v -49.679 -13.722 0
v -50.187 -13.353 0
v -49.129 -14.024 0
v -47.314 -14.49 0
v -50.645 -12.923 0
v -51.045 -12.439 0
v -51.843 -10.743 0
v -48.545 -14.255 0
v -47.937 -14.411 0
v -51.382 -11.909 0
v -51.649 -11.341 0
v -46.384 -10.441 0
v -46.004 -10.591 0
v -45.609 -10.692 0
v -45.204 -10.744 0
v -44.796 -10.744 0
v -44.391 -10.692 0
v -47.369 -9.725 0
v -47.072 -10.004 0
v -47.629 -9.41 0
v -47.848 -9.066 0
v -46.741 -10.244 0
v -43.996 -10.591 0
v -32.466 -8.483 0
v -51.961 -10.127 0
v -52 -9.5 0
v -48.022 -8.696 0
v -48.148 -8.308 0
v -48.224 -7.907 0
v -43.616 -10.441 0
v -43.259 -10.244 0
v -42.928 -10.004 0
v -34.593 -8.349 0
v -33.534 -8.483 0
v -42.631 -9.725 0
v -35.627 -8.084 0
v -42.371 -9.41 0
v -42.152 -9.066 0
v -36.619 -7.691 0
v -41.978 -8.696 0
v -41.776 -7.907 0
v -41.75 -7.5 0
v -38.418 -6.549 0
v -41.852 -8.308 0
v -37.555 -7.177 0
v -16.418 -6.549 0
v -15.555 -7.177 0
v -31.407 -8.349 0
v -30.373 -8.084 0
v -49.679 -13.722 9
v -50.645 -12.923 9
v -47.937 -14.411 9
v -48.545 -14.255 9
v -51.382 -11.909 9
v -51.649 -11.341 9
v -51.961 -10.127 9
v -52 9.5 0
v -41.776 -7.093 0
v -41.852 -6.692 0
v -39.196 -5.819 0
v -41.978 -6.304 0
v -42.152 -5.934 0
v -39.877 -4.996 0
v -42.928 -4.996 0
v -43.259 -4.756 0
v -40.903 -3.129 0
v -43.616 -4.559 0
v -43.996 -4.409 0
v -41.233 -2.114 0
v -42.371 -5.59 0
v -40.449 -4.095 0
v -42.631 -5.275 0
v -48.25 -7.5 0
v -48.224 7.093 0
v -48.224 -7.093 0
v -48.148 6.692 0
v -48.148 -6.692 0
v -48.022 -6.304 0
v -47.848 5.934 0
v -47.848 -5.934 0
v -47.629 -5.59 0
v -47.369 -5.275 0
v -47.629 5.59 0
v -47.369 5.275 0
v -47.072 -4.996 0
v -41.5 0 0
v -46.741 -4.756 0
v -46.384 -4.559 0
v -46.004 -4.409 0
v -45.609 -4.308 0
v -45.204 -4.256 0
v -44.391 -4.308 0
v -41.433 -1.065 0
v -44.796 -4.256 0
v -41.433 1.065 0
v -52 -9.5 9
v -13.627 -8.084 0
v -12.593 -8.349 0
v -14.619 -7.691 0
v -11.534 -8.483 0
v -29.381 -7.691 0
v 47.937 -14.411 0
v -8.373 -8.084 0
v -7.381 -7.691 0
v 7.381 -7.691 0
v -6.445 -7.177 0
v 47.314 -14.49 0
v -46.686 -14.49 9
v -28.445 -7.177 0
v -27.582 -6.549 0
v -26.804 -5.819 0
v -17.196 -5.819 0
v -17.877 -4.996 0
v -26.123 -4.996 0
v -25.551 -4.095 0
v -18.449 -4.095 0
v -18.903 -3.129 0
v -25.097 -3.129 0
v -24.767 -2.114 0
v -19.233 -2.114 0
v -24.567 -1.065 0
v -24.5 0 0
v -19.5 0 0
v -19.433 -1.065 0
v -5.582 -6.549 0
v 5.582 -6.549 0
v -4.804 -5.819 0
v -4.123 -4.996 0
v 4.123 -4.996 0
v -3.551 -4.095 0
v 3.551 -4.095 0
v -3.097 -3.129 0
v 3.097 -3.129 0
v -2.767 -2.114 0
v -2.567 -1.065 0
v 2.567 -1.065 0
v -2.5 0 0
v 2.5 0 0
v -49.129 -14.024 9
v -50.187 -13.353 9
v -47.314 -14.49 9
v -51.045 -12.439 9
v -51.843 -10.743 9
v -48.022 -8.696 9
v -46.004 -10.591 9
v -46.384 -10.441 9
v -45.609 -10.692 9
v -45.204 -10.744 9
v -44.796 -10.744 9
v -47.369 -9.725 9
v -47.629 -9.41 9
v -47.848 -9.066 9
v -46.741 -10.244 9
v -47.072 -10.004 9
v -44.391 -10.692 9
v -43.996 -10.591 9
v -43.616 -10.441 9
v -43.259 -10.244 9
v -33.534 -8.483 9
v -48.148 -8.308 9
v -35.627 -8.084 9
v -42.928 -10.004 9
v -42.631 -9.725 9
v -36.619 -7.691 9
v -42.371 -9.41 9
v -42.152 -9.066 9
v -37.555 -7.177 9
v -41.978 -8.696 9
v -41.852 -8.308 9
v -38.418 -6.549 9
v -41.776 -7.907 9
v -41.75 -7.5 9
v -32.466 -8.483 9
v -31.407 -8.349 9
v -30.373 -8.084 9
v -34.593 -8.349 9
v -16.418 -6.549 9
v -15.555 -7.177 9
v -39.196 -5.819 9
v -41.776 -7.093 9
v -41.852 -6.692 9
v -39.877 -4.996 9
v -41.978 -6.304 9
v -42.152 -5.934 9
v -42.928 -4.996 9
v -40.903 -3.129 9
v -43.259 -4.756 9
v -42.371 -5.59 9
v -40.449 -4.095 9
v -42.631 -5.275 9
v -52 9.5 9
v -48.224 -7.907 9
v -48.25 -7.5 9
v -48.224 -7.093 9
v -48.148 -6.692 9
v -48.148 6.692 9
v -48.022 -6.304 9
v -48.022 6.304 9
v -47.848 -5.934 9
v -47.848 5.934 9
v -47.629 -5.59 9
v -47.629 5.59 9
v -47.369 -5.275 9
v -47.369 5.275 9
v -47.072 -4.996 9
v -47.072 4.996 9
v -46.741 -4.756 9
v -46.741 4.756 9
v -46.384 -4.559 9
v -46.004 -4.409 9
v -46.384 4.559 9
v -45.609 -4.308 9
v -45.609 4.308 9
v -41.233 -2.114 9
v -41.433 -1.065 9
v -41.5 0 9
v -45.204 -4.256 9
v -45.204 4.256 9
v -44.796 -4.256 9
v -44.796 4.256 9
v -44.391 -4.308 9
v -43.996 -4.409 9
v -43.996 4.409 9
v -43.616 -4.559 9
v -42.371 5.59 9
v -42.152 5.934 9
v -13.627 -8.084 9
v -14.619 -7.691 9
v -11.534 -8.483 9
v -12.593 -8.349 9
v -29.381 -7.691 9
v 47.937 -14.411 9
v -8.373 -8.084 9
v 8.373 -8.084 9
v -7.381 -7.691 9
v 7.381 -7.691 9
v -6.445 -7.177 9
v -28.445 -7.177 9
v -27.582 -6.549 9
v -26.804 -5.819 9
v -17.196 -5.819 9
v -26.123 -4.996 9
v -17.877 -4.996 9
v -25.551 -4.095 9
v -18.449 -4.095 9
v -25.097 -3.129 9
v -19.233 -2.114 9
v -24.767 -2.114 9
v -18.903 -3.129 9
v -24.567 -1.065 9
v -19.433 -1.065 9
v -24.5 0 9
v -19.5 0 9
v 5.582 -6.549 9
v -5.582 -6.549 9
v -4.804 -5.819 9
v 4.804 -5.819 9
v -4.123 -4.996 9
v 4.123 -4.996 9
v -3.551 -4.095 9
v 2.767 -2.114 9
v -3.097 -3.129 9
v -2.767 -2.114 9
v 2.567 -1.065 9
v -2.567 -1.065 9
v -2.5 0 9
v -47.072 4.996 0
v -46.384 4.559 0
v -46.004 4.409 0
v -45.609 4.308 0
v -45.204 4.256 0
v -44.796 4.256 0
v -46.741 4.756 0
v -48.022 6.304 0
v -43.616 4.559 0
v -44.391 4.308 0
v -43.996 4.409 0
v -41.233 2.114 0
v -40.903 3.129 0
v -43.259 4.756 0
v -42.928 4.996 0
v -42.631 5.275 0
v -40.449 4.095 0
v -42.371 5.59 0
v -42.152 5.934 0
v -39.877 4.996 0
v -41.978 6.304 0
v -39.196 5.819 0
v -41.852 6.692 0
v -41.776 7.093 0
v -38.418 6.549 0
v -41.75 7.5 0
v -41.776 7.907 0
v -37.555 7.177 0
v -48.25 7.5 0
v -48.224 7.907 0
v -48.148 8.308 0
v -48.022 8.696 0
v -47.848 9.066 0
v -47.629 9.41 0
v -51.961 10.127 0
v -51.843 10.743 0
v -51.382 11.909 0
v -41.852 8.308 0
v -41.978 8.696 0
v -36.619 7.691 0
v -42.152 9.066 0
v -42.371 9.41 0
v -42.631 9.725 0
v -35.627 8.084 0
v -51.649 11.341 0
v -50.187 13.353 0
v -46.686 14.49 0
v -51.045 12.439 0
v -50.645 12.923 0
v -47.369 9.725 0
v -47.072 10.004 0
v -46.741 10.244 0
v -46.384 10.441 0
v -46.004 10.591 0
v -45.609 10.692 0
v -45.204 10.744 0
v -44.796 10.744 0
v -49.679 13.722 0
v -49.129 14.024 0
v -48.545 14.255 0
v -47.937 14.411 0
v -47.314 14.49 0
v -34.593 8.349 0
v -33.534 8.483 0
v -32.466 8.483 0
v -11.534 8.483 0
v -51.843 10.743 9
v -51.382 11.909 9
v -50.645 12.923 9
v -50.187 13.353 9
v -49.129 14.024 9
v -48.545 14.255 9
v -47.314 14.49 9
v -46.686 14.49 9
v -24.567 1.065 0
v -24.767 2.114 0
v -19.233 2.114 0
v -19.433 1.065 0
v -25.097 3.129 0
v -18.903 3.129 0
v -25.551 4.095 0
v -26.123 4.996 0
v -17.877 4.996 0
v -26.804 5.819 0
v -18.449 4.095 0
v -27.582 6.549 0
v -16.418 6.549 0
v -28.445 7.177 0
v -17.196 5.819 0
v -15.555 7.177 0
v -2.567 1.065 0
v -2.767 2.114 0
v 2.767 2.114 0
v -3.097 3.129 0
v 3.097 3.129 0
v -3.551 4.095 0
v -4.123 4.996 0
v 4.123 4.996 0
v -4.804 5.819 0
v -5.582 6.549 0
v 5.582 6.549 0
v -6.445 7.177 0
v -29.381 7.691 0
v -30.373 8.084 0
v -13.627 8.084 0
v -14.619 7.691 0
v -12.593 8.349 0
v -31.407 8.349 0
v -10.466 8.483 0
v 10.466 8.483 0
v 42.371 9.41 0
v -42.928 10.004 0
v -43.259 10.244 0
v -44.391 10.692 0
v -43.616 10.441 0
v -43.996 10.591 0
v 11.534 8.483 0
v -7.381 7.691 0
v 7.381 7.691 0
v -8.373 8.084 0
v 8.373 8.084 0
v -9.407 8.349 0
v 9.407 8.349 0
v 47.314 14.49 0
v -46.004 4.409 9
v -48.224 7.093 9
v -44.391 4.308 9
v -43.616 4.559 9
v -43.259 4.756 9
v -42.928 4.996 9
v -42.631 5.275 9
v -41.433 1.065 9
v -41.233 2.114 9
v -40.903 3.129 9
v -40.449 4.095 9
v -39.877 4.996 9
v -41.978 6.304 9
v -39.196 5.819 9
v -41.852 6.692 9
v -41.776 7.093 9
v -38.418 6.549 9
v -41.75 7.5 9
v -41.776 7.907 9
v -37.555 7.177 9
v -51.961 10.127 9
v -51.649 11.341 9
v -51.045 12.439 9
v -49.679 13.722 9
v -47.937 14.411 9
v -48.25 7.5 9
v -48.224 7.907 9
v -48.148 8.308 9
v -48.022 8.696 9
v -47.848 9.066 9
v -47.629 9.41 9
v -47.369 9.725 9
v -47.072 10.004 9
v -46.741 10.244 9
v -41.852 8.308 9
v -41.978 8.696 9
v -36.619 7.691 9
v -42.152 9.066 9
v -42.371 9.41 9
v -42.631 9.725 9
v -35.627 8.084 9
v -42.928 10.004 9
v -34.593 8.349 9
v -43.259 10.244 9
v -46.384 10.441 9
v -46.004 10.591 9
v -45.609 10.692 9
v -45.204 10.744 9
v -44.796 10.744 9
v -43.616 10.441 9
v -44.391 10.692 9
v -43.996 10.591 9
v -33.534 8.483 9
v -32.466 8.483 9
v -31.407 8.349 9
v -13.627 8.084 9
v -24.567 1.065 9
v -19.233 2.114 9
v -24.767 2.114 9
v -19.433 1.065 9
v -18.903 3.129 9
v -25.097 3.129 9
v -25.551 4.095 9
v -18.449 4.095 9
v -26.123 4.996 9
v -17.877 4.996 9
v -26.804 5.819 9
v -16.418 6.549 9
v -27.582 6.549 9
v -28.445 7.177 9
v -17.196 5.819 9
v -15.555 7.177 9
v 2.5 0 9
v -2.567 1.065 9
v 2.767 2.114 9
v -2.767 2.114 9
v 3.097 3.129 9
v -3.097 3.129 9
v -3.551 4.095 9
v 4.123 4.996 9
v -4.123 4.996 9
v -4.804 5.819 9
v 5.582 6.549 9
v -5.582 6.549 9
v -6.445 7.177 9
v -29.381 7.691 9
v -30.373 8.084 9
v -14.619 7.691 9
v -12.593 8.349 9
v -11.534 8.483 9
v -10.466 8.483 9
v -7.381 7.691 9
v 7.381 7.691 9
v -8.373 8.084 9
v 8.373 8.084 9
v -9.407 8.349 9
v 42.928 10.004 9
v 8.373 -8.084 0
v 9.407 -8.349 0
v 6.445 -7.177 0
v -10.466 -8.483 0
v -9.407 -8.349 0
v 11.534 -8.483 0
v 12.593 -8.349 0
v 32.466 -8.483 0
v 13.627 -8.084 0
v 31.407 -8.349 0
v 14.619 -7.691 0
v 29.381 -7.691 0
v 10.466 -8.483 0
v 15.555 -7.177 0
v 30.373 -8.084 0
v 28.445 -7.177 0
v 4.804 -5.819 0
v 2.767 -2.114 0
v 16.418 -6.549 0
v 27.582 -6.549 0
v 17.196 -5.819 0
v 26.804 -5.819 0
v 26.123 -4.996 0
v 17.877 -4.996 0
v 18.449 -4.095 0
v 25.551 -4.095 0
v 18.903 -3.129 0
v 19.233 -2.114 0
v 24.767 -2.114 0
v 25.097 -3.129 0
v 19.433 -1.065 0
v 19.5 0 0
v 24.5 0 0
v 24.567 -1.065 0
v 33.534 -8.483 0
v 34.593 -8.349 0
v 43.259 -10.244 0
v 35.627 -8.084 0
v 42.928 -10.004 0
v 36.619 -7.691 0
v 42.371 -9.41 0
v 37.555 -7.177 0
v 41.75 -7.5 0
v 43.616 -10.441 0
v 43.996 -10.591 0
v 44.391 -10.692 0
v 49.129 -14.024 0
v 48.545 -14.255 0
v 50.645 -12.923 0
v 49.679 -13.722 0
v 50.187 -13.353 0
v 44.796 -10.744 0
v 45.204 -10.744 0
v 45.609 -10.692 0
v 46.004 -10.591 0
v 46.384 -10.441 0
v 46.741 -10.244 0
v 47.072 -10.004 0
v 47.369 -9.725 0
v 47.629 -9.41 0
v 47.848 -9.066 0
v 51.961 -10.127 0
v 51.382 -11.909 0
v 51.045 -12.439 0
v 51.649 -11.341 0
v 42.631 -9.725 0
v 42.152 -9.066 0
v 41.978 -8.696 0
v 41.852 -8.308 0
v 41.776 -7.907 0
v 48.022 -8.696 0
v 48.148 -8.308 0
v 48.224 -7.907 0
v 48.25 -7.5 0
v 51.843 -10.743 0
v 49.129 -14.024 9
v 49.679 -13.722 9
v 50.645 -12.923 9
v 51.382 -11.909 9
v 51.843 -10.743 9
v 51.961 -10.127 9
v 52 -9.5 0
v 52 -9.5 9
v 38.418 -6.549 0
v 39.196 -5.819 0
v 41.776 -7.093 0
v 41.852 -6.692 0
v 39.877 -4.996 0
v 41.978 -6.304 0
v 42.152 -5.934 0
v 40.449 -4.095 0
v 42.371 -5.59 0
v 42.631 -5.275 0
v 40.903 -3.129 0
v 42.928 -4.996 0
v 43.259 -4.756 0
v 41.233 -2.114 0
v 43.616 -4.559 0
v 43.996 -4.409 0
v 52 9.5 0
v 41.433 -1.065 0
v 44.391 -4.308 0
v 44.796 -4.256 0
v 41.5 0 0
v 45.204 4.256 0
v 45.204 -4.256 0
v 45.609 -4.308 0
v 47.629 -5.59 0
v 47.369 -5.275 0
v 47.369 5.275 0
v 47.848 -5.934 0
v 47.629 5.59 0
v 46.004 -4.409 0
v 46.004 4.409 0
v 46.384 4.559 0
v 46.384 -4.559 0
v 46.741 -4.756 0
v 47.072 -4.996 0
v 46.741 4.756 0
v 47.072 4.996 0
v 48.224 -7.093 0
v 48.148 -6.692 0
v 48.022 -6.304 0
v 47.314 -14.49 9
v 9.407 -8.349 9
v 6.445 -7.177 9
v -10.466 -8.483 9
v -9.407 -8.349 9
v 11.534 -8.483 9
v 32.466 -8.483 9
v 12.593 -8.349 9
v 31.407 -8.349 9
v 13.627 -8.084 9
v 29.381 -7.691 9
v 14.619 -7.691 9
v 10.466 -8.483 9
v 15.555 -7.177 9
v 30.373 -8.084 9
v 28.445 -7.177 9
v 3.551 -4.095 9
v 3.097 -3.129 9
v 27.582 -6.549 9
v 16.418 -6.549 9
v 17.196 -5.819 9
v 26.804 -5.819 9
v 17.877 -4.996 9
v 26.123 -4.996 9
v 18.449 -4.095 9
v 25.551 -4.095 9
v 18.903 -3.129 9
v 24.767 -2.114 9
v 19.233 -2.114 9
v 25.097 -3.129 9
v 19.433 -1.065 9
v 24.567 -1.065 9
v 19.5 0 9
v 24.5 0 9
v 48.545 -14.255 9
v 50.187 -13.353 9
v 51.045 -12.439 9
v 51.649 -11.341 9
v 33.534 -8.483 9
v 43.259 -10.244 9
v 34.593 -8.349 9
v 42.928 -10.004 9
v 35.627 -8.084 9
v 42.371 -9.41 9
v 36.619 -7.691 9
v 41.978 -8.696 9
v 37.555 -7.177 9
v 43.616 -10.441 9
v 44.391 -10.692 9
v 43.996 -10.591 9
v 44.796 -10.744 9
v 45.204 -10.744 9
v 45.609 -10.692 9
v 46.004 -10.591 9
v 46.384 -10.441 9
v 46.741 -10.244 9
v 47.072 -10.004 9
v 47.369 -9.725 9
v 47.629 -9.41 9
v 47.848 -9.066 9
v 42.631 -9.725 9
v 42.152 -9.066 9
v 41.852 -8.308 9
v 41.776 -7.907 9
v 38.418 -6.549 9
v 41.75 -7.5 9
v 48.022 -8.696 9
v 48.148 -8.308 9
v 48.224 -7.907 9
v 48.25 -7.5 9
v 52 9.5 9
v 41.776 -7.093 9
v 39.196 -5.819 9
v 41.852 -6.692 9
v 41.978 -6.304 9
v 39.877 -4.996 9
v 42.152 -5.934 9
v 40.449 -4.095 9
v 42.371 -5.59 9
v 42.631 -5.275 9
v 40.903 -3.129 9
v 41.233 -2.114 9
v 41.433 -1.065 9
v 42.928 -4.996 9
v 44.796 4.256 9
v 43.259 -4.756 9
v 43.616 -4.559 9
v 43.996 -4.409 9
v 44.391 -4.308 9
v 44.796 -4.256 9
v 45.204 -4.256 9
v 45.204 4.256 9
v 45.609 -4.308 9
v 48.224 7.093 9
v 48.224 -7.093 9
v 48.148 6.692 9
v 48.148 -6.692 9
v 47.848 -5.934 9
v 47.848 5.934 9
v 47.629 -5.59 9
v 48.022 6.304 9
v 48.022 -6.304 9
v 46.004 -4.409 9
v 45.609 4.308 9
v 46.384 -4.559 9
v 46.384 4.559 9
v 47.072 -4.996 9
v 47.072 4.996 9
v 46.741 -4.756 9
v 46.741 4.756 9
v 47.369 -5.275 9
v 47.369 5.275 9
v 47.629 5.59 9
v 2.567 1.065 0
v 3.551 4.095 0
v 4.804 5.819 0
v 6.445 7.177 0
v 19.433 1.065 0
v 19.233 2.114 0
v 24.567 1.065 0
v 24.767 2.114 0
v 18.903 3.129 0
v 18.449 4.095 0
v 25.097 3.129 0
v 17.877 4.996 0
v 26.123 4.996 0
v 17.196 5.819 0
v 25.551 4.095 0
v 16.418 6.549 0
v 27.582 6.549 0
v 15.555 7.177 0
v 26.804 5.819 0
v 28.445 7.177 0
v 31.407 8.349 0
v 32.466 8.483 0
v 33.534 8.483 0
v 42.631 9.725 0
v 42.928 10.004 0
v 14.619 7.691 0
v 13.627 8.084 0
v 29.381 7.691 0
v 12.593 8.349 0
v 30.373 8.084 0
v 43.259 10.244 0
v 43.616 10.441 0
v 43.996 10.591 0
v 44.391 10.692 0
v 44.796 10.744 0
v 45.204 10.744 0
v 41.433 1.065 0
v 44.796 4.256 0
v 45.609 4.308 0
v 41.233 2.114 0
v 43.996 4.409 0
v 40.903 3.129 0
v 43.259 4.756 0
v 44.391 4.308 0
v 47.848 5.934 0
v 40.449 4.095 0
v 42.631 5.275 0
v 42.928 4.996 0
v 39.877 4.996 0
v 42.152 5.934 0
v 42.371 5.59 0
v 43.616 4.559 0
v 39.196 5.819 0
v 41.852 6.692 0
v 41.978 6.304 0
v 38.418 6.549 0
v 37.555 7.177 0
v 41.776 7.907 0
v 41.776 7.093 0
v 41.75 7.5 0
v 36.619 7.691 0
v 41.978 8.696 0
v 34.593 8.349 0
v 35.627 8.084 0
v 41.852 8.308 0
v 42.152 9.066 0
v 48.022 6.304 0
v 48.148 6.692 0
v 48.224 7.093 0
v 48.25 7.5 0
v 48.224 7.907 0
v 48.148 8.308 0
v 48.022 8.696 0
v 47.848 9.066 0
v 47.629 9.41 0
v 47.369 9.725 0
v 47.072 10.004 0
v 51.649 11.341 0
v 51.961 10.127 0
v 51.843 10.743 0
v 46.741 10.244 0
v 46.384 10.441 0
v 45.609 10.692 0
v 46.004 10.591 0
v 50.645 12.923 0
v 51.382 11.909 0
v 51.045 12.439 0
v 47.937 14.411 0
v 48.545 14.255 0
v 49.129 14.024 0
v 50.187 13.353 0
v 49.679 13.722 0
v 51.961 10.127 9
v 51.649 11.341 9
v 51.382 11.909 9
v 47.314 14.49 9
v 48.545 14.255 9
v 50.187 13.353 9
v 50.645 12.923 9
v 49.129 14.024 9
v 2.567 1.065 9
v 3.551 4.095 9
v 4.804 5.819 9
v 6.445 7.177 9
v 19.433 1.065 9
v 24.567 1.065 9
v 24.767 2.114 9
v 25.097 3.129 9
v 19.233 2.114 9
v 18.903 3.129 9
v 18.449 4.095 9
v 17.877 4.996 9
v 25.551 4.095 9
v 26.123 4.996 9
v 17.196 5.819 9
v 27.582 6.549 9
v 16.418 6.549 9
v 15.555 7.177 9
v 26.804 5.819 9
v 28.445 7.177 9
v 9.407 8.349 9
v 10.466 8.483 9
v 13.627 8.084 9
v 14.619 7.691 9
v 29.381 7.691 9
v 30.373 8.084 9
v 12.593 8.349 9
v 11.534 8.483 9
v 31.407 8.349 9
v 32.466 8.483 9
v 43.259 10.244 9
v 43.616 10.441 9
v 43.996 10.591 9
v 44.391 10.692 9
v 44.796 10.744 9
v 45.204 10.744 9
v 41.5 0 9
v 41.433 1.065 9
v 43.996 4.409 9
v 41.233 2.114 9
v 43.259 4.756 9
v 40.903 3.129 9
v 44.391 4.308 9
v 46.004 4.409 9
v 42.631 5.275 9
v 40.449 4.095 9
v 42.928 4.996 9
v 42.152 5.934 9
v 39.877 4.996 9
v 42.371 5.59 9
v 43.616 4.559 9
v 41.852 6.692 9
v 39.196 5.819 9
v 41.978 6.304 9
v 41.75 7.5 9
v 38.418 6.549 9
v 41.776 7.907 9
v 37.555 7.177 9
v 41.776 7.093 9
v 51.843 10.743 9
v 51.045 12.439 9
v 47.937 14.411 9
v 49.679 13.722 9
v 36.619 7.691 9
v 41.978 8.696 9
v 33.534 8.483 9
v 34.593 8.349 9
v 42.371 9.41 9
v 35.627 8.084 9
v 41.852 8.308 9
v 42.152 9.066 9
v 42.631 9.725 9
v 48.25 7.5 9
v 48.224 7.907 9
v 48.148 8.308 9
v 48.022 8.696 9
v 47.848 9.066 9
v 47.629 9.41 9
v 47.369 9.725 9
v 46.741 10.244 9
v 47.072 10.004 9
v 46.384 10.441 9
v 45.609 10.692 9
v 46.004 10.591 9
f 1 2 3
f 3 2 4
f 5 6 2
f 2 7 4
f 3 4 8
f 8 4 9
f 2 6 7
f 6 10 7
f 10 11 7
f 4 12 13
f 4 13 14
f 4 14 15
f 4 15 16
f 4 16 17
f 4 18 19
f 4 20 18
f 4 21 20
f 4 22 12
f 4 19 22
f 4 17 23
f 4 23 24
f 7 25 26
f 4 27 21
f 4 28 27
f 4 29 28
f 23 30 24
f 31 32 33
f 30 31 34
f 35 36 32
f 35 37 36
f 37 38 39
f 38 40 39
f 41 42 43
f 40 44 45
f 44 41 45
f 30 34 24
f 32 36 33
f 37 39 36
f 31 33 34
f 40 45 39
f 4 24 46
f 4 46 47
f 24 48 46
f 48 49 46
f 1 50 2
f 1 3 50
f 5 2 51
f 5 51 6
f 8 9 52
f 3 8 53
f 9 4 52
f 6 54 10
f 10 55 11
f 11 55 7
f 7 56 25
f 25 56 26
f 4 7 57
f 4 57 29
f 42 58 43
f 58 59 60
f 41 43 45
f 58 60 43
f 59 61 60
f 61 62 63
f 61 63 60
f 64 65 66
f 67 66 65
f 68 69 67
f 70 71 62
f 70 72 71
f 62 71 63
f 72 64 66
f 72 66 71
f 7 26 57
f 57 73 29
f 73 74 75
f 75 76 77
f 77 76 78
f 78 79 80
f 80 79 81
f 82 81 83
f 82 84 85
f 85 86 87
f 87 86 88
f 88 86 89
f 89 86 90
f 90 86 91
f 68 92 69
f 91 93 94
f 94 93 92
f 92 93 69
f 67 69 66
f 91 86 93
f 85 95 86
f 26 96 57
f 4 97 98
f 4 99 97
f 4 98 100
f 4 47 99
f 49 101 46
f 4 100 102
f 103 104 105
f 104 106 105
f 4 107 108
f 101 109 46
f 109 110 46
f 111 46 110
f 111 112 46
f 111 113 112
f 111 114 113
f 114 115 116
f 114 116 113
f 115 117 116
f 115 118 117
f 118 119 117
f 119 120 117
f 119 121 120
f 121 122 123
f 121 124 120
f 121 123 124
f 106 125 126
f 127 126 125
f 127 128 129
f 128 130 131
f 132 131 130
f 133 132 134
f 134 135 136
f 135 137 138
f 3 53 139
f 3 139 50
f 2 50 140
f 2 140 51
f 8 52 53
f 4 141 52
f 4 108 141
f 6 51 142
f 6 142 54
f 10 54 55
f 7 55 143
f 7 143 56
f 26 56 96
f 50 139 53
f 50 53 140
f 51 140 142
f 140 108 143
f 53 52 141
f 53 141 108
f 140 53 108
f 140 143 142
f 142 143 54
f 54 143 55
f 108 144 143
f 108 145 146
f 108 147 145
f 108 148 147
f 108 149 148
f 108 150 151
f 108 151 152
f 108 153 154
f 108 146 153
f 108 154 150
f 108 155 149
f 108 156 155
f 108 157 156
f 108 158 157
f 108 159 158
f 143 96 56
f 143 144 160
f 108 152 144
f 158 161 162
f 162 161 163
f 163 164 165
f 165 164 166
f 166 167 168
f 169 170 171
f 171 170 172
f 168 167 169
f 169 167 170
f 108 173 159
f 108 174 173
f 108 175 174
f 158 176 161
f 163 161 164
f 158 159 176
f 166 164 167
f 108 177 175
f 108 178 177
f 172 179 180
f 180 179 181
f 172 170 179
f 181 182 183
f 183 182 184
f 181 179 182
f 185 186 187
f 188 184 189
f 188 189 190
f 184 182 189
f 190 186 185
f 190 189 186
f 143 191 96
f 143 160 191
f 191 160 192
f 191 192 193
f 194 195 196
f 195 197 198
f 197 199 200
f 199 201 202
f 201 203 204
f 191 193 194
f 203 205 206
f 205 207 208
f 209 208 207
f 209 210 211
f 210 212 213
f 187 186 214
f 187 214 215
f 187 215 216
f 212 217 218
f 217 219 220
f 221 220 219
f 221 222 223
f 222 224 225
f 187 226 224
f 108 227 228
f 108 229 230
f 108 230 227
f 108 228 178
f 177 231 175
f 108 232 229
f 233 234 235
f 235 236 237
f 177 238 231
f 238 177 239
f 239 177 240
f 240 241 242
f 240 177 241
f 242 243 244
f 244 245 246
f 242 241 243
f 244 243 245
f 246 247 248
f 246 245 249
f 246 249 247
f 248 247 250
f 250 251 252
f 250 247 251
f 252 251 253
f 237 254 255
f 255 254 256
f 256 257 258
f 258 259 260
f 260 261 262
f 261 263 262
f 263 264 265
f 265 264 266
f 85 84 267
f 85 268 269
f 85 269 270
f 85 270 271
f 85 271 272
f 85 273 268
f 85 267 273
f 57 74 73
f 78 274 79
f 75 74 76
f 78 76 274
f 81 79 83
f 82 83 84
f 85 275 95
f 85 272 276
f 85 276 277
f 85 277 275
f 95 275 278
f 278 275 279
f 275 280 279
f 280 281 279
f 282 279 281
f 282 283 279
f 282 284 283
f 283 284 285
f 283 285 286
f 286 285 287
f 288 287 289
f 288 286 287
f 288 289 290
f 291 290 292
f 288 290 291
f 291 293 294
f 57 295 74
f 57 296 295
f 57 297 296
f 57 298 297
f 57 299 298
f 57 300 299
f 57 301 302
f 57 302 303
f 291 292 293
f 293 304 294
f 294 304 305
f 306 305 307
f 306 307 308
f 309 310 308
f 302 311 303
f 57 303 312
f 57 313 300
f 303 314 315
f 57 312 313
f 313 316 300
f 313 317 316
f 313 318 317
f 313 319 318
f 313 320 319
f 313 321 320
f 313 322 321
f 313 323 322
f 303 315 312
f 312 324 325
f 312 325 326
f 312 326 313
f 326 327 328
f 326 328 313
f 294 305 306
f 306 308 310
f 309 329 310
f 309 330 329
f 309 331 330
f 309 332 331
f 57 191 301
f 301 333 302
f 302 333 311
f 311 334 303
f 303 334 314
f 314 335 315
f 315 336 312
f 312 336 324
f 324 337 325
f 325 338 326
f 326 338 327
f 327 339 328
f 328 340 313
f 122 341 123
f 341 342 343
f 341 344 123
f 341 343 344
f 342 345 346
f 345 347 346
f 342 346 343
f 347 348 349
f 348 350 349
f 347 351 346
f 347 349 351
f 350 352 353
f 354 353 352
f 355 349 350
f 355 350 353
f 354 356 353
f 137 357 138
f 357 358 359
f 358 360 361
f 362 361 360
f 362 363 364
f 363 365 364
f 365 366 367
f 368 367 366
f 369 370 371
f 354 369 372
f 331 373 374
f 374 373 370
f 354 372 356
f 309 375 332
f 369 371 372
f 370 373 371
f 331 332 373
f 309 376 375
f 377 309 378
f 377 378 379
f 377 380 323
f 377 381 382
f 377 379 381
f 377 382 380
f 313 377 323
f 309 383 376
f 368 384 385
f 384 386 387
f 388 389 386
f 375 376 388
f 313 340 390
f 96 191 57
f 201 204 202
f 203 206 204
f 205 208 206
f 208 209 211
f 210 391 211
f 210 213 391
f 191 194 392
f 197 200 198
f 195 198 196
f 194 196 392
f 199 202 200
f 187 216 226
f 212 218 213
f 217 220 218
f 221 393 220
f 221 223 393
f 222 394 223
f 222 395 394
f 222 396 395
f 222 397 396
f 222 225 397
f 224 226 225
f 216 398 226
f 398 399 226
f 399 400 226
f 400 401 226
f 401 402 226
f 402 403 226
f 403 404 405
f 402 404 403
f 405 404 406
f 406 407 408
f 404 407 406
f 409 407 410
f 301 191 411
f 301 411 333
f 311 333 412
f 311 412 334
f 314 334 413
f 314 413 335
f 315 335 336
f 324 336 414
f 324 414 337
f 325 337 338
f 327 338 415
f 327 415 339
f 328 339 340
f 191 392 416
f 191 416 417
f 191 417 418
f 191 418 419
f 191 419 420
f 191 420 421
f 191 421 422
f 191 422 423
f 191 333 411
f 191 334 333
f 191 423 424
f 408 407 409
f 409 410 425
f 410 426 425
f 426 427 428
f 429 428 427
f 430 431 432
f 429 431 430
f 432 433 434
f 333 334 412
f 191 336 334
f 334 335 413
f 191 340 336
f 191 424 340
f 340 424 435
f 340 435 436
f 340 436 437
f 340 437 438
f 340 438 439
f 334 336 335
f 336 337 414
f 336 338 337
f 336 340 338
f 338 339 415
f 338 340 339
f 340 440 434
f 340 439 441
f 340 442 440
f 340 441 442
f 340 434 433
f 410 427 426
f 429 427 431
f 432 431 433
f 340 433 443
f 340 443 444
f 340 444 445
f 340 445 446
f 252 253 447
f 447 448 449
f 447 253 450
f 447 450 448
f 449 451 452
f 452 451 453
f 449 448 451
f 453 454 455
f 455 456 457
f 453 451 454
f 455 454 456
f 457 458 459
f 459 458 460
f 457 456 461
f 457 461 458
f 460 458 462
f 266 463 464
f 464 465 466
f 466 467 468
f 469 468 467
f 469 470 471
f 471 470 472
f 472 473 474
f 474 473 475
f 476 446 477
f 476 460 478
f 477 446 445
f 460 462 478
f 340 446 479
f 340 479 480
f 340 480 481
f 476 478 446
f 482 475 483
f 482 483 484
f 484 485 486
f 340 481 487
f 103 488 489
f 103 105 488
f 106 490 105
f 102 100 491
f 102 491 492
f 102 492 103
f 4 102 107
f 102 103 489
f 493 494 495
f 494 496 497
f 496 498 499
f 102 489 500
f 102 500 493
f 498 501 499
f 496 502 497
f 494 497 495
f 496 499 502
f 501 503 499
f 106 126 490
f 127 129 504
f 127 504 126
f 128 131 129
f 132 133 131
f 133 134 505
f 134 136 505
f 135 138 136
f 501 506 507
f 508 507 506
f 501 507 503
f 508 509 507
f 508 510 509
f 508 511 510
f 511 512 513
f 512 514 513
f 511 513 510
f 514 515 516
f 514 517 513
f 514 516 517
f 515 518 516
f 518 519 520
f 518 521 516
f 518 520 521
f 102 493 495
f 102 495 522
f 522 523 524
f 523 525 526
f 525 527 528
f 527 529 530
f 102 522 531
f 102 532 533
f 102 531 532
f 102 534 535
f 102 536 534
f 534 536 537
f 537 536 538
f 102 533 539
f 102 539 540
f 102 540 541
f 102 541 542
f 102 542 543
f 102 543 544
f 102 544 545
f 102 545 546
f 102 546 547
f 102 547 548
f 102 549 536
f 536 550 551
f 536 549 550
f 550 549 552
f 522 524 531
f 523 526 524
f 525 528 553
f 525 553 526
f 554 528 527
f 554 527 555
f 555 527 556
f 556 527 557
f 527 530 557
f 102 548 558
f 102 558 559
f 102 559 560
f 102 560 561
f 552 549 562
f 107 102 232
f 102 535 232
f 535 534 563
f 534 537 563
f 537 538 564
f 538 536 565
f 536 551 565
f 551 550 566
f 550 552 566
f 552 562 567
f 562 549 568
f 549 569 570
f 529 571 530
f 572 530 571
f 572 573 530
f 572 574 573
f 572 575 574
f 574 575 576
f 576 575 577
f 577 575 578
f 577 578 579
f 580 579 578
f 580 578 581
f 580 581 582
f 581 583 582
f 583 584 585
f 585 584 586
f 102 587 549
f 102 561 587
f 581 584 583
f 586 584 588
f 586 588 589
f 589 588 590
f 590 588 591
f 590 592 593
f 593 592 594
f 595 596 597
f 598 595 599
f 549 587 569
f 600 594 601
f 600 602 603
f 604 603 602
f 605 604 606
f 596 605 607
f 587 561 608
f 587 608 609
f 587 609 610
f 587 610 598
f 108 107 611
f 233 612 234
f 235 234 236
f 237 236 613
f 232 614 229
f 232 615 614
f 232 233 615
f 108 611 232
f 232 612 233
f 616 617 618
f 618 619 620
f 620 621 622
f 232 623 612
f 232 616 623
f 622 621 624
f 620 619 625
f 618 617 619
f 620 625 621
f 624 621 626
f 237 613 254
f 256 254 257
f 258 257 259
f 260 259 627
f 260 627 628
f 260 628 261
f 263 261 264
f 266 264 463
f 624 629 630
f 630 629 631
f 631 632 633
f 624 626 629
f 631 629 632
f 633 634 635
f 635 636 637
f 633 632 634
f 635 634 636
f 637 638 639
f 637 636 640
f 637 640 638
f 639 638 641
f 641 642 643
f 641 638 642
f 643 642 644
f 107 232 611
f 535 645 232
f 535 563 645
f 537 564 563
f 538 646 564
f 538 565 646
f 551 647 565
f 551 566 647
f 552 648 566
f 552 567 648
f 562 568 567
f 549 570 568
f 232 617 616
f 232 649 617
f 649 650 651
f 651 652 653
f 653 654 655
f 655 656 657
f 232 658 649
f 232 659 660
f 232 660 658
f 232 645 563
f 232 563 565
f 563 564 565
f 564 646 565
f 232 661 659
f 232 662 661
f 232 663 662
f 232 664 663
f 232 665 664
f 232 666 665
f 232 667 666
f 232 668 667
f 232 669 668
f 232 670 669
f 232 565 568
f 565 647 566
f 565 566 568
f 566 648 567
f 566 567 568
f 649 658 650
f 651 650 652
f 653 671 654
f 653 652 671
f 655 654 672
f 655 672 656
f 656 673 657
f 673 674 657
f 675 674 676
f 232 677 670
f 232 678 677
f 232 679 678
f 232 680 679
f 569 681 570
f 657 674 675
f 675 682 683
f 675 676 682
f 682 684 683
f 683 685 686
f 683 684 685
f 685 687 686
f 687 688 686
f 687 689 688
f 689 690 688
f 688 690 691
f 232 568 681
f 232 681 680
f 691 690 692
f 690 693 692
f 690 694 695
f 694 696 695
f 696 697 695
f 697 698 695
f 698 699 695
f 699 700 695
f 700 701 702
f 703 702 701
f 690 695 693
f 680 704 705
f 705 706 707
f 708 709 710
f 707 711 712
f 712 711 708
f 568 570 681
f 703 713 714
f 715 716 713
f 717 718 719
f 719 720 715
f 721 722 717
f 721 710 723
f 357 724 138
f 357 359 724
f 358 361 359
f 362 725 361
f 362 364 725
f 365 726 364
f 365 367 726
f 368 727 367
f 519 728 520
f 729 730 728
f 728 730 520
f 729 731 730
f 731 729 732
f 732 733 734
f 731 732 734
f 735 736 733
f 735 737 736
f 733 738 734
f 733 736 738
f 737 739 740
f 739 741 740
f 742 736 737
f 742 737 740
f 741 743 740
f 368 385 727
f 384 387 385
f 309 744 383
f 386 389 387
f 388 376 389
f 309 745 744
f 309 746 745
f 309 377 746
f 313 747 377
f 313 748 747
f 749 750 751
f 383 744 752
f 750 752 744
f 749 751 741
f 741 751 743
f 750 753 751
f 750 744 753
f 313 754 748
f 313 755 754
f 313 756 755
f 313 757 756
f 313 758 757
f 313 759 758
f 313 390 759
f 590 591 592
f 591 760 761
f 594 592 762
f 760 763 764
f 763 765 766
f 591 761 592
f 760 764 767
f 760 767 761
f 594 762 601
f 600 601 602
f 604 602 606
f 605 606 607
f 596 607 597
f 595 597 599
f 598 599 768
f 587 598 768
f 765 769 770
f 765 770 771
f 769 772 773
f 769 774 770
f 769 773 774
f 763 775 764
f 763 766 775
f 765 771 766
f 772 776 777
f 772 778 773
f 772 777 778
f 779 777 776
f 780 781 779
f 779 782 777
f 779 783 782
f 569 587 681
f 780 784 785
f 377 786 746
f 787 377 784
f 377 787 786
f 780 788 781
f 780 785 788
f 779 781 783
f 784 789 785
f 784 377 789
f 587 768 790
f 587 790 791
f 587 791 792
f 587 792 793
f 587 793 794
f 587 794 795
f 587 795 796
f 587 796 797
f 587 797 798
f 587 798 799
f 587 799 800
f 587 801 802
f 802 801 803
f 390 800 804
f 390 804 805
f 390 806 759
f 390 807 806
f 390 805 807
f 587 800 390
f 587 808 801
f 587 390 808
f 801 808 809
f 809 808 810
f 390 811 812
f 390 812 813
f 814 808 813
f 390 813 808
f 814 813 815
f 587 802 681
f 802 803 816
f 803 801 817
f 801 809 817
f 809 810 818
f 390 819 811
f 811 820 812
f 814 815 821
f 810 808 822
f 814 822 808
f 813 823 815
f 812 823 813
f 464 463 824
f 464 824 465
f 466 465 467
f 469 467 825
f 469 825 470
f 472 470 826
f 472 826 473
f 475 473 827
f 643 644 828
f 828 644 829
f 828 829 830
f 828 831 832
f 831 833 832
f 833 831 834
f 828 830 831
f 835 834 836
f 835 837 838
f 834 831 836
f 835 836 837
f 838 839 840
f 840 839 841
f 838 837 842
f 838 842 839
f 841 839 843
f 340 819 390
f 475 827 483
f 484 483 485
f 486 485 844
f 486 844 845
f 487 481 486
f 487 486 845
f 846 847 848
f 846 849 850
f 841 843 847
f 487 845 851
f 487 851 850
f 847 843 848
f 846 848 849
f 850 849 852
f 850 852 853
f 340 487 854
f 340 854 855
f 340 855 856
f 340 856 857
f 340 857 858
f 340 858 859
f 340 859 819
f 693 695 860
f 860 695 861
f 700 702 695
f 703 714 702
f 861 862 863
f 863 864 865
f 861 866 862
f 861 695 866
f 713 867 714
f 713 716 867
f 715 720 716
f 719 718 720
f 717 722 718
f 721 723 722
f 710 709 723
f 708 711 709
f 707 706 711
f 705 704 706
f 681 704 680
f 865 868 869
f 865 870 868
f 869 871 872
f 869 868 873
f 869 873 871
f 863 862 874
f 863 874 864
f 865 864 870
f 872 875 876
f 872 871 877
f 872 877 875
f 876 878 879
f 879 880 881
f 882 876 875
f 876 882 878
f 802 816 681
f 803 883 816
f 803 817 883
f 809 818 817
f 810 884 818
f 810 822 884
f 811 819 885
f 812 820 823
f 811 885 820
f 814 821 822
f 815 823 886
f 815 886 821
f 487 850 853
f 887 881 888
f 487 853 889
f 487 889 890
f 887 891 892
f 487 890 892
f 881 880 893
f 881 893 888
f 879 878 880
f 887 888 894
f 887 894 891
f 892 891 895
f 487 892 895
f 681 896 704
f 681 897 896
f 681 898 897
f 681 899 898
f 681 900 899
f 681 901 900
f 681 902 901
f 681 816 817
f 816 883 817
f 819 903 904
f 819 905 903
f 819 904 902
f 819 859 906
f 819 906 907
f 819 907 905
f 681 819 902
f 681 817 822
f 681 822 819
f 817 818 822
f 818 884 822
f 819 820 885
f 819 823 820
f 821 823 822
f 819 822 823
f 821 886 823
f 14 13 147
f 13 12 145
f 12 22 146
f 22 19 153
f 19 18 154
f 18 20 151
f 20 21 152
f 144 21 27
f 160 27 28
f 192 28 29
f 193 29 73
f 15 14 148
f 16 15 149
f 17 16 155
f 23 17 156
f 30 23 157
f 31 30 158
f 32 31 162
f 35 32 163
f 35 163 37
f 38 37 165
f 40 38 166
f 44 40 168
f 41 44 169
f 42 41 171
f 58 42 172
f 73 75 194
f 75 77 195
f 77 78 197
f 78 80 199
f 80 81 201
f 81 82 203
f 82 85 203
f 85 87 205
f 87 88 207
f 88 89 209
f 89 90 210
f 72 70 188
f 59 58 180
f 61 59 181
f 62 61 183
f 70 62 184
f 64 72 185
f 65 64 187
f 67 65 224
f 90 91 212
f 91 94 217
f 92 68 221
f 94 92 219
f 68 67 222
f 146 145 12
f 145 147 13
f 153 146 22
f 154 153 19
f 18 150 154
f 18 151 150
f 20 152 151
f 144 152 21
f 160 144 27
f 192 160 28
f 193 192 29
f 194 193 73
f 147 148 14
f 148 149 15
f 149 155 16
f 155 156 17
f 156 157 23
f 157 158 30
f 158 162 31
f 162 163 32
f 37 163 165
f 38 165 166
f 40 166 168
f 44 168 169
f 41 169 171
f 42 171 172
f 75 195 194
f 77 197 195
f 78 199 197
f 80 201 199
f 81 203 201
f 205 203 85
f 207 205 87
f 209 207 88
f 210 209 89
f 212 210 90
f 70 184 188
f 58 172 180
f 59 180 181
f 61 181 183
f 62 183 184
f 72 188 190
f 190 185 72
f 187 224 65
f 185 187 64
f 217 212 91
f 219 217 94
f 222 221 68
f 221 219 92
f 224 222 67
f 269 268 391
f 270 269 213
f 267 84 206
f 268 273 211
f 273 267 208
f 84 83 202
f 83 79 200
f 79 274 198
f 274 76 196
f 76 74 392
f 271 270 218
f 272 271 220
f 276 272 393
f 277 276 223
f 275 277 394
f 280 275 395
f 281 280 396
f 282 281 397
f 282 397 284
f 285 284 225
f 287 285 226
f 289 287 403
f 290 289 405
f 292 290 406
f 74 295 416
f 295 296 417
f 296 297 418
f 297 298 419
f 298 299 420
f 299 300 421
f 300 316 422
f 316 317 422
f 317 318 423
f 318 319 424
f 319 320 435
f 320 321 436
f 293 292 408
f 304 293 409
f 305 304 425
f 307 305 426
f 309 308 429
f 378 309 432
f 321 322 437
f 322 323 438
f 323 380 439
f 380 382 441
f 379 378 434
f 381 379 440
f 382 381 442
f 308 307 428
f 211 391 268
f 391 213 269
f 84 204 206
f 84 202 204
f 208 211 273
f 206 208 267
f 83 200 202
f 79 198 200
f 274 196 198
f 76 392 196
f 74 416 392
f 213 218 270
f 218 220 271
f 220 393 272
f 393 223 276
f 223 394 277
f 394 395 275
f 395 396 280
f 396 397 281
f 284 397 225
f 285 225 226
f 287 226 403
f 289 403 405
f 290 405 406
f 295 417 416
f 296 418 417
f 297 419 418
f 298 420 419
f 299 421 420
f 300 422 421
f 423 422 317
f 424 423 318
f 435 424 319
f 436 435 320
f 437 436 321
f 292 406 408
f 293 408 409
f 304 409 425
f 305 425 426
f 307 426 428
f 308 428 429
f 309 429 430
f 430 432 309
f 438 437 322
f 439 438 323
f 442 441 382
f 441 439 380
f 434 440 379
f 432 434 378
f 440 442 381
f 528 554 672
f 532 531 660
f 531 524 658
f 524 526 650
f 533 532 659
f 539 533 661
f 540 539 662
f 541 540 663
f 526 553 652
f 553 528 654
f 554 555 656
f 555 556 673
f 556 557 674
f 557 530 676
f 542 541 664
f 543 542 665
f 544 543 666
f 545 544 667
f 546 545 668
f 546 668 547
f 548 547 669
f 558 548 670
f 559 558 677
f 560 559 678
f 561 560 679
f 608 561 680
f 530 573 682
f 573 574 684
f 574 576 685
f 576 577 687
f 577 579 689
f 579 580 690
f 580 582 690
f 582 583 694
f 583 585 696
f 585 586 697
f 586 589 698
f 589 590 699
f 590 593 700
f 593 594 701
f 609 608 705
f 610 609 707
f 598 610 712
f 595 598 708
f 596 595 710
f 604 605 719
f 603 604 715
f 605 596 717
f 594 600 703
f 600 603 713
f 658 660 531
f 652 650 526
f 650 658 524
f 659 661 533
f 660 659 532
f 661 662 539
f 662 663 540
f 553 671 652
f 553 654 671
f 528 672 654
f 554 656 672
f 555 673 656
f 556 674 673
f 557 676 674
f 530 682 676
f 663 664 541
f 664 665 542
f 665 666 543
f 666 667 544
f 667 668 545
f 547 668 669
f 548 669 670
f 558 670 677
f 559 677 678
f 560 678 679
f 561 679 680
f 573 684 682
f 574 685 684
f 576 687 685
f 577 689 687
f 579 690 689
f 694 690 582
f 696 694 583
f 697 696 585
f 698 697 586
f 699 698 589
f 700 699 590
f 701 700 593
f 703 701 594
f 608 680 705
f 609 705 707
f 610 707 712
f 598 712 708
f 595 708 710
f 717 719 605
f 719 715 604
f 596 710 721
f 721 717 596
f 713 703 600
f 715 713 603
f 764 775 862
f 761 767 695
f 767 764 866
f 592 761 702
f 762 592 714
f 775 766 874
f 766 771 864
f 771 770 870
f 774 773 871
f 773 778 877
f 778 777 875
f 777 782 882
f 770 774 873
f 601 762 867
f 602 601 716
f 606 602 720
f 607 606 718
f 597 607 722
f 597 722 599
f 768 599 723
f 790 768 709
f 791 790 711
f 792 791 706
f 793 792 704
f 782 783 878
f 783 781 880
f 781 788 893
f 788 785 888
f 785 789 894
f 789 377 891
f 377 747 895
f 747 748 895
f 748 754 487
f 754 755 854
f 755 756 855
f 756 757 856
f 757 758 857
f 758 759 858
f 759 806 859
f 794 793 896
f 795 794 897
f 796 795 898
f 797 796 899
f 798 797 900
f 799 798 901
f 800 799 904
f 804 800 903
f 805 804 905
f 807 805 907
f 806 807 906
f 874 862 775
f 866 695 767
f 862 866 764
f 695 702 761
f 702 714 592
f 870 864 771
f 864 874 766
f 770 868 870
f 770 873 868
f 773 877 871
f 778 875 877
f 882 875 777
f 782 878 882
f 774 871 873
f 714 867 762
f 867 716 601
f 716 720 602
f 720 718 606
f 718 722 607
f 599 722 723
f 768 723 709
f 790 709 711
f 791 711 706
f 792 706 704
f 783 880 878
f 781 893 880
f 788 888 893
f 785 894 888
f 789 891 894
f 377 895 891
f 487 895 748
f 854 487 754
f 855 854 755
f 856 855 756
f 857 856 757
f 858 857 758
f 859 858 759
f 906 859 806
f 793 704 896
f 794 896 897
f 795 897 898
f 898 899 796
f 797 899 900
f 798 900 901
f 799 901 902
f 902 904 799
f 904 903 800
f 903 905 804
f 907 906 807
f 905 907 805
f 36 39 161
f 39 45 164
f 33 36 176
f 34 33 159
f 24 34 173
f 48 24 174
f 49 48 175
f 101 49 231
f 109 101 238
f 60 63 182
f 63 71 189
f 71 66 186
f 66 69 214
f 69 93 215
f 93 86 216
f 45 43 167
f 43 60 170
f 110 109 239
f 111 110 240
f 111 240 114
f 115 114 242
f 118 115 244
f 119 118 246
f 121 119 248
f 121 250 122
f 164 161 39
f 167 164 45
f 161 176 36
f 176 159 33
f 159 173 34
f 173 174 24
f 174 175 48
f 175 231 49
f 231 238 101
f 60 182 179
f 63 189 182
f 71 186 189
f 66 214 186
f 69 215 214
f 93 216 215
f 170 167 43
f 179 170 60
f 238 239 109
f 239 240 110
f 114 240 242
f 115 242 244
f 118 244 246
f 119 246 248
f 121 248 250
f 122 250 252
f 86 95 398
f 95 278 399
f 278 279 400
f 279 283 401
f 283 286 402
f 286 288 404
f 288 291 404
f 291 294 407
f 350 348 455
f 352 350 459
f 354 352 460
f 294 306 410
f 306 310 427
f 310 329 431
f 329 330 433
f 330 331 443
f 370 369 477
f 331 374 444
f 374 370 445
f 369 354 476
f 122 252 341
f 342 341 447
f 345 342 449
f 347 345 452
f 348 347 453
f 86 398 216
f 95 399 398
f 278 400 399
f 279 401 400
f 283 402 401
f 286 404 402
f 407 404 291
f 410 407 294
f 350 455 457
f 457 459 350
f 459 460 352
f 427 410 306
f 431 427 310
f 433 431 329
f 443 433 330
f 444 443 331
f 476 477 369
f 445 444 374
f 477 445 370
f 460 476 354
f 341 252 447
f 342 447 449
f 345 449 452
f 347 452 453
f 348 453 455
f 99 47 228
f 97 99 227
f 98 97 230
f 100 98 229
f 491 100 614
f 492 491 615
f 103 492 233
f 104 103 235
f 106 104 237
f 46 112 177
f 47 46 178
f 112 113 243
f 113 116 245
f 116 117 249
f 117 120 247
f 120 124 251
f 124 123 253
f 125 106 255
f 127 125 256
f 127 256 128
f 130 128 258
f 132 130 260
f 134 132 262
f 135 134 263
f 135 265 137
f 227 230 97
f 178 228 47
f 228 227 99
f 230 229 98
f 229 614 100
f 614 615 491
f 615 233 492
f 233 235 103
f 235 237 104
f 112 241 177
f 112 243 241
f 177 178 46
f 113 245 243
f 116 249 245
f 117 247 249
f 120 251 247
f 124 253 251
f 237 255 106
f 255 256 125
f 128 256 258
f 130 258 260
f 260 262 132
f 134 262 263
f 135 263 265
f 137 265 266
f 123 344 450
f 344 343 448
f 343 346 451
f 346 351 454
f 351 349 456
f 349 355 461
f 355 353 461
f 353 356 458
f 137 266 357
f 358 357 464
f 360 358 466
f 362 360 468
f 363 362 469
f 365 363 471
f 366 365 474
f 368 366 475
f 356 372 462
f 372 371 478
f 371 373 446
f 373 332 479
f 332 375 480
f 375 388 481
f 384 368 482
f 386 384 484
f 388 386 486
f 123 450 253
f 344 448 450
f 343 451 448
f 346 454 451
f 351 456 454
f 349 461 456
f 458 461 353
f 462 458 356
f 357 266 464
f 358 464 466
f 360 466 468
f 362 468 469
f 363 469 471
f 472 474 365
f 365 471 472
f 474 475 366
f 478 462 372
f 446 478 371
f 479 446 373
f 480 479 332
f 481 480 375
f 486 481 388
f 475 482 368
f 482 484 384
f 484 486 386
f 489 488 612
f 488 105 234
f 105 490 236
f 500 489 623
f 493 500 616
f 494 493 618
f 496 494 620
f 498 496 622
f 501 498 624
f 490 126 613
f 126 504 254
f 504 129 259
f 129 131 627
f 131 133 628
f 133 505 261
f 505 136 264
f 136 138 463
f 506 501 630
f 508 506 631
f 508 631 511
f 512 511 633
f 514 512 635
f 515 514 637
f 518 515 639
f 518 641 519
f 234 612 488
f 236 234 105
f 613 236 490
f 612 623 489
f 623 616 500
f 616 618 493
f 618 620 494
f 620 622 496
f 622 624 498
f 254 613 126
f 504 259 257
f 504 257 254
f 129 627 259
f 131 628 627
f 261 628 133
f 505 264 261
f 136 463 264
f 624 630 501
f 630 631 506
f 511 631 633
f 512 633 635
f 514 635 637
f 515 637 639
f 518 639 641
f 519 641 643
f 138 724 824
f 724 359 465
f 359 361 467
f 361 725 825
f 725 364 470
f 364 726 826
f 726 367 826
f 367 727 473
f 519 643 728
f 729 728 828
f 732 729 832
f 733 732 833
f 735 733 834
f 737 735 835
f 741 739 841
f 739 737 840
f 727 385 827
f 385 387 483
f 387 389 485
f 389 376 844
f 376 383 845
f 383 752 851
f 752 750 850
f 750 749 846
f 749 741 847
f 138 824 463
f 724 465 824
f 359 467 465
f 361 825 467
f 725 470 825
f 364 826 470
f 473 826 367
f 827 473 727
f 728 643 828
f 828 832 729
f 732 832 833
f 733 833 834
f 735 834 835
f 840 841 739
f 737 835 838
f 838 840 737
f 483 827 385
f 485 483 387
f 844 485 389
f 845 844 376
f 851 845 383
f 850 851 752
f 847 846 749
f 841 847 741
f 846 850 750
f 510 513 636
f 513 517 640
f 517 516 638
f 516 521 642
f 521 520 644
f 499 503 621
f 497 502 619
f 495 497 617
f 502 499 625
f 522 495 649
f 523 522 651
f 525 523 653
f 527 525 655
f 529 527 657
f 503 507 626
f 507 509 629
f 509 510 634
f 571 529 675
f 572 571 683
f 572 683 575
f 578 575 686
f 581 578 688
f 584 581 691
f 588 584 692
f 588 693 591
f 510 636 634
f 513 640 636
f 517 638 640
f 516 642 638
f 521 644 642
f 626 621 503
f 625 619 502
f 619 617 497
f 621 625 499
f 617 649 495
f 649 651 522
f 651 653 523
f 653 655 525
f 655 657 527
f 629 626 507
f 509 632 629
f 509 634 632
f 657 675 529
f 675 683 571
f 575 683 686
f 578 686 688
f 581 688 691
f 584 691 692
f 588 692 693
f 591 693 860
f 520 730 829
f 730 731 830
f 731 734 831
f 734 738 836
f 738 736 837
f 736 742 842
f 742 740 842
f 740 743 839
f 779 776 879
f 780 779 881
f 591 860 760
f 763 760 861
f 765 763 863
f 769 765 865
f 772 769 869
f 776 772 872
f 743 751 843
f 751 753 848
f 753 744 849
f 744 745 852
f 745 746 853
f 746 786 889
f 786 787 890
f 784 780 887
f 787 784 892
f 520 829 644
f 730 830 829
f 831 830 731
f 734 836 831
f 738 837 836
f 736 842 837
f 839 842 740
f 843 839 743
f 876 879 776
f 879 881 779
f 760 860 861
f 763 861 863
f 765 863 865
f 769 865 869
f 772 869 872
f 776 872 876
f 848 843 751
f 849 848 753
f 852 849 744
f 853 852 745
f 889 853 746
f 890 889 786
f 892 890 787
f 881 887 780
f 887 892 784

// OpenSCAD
$fn = 50;

difference() {
	union() {
		hull() {
			translate(v = [-47.0, 9.5, 0]) {
				cylinder(h = 9, r = 5);
			}
			translate(v = [47.0, 9.5, 0]) {
				cylinder(h = 9, r = 5);
			}
			translate(v = [-47.0, -9.5, 0]) {
				cylinder(h = 9, r = 5);
			}
			translate(v = [47.0, -9.5, 0]) {
				cylinder(h = 9, r = 5);
			}
		}
	}
	union() {
		translate(v = [-45.0, -7.5, 0]) {
			cylinder(h = 9, r = 3.25);
		}
		translate(v = [-45.0, 7.5, 0]) {
			cylinder(h = 9, r = 3.25);
		}
		translate(v = [45.0, -7.5, 0]) {
			cylinder(h = 9, r = 3.25);
		}
		translate(v = [45.0, 7.5, 0]) {
			cylinder(h = 9, r = 3.25);
		}
		translate(v = [-33.0, 0, 0.0]) {
			cylinder(h = 9, r = 8.5);
		}
		translate(v = [-11.0, 0, 0.0]) {
			cylinder(h = 9, r = 8.5);
		}
		translate(v = [11.0, 0, 0.0]) {
			cylinder(h = 9, r = 8.5);
		}
		translate(v = [33.0, 0, 0.0]) {
			cylinder(h = 9, r = 8.5);
		}
	}
}
